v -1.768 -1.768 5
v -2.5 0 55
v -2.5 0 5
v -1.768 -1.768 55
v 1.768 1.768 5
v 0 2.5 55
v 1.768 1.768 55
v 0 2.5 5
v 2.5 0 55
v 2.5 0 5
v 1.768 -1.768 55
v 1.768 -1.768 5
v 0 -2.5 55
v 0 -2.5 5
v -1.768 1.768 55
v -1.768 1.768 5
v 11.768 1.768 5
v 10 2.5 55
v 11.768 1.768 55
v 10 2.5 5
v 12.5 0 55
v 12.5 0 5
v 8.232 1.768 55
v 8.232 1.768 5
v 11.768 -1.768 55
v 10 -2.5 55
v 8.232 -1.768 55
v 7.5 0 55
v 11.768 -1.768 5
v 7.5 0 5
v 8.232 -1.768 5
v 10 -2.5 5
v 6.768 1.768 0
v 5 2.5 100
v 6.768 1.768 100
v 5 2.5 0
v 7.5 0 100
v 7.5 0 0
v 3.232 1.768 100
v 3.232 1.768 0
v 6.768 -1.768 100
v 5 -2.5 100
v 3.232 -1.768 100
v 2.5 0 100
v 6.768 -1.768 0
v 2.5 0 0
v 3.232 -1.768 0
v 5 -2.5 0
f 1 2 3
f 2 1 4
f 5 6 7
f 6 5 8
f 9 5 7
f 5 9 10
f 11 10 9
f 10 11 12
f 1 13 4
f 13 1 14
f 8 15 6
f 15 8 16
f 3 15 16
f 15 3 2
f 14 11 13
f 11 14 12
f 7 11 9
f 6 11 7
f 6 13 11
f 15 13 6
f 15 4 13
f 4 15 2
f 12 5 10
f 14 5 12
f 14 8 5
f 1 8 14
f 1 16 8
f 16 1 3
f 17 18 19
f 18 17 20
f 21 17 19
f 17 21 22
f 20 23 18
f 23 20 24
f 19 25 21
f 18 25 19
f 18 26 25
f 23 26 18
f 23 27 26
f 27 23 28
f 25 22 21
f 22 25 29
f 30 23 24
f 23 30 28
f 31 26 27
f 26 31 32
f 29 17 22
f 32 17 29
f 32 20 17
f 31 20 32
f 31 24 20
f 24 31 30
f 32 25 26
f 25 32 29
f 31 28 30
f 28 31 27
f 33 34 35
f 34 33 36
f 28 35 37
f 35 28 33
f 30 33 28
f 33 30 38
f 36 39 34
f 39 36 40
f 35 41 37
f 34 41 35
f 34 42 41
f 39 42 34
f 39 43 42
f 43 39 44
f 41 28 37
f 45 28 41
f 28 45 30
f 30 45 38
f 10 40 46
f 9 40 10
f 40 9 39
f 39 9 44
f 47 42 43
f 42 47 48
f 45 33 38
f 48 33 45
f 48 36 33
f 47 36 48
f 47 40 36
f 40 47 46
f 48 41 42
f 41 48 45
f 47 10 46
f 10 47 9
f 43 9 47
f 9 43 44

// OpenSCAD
// Define parameters
long_rod_length = 100;
long_rod_diameter = 5;

short_rod_length = 50;
short_rod_diameter = 5;

offset = 10; // Offset between short rods
height_difference = 5; // Height difference between layers

// Module to create a cylindrical rod
module cylindrical_rod(length, diameter) {
    cylinder(h=length, d=diameter, center=false);
}

// Assemble the model
module model() {
    // Layer 1: Two short cylindrical rods
    translate([0, 0, height_difference])
        cylindrical_rod(short_rod_length, short_rod_diameter);
    
    translate([offset, 0, height_difference])
        cylindrical_rod(short_rod_length, short_rod_diameter);
    
    // Layer 2: Long cylindrical rod below the short rods
    translate([offset / 2, 0, 0])
        cylindrical_rod(long_rod_length, long_rod_diameter);
}

// Render the model
model();
